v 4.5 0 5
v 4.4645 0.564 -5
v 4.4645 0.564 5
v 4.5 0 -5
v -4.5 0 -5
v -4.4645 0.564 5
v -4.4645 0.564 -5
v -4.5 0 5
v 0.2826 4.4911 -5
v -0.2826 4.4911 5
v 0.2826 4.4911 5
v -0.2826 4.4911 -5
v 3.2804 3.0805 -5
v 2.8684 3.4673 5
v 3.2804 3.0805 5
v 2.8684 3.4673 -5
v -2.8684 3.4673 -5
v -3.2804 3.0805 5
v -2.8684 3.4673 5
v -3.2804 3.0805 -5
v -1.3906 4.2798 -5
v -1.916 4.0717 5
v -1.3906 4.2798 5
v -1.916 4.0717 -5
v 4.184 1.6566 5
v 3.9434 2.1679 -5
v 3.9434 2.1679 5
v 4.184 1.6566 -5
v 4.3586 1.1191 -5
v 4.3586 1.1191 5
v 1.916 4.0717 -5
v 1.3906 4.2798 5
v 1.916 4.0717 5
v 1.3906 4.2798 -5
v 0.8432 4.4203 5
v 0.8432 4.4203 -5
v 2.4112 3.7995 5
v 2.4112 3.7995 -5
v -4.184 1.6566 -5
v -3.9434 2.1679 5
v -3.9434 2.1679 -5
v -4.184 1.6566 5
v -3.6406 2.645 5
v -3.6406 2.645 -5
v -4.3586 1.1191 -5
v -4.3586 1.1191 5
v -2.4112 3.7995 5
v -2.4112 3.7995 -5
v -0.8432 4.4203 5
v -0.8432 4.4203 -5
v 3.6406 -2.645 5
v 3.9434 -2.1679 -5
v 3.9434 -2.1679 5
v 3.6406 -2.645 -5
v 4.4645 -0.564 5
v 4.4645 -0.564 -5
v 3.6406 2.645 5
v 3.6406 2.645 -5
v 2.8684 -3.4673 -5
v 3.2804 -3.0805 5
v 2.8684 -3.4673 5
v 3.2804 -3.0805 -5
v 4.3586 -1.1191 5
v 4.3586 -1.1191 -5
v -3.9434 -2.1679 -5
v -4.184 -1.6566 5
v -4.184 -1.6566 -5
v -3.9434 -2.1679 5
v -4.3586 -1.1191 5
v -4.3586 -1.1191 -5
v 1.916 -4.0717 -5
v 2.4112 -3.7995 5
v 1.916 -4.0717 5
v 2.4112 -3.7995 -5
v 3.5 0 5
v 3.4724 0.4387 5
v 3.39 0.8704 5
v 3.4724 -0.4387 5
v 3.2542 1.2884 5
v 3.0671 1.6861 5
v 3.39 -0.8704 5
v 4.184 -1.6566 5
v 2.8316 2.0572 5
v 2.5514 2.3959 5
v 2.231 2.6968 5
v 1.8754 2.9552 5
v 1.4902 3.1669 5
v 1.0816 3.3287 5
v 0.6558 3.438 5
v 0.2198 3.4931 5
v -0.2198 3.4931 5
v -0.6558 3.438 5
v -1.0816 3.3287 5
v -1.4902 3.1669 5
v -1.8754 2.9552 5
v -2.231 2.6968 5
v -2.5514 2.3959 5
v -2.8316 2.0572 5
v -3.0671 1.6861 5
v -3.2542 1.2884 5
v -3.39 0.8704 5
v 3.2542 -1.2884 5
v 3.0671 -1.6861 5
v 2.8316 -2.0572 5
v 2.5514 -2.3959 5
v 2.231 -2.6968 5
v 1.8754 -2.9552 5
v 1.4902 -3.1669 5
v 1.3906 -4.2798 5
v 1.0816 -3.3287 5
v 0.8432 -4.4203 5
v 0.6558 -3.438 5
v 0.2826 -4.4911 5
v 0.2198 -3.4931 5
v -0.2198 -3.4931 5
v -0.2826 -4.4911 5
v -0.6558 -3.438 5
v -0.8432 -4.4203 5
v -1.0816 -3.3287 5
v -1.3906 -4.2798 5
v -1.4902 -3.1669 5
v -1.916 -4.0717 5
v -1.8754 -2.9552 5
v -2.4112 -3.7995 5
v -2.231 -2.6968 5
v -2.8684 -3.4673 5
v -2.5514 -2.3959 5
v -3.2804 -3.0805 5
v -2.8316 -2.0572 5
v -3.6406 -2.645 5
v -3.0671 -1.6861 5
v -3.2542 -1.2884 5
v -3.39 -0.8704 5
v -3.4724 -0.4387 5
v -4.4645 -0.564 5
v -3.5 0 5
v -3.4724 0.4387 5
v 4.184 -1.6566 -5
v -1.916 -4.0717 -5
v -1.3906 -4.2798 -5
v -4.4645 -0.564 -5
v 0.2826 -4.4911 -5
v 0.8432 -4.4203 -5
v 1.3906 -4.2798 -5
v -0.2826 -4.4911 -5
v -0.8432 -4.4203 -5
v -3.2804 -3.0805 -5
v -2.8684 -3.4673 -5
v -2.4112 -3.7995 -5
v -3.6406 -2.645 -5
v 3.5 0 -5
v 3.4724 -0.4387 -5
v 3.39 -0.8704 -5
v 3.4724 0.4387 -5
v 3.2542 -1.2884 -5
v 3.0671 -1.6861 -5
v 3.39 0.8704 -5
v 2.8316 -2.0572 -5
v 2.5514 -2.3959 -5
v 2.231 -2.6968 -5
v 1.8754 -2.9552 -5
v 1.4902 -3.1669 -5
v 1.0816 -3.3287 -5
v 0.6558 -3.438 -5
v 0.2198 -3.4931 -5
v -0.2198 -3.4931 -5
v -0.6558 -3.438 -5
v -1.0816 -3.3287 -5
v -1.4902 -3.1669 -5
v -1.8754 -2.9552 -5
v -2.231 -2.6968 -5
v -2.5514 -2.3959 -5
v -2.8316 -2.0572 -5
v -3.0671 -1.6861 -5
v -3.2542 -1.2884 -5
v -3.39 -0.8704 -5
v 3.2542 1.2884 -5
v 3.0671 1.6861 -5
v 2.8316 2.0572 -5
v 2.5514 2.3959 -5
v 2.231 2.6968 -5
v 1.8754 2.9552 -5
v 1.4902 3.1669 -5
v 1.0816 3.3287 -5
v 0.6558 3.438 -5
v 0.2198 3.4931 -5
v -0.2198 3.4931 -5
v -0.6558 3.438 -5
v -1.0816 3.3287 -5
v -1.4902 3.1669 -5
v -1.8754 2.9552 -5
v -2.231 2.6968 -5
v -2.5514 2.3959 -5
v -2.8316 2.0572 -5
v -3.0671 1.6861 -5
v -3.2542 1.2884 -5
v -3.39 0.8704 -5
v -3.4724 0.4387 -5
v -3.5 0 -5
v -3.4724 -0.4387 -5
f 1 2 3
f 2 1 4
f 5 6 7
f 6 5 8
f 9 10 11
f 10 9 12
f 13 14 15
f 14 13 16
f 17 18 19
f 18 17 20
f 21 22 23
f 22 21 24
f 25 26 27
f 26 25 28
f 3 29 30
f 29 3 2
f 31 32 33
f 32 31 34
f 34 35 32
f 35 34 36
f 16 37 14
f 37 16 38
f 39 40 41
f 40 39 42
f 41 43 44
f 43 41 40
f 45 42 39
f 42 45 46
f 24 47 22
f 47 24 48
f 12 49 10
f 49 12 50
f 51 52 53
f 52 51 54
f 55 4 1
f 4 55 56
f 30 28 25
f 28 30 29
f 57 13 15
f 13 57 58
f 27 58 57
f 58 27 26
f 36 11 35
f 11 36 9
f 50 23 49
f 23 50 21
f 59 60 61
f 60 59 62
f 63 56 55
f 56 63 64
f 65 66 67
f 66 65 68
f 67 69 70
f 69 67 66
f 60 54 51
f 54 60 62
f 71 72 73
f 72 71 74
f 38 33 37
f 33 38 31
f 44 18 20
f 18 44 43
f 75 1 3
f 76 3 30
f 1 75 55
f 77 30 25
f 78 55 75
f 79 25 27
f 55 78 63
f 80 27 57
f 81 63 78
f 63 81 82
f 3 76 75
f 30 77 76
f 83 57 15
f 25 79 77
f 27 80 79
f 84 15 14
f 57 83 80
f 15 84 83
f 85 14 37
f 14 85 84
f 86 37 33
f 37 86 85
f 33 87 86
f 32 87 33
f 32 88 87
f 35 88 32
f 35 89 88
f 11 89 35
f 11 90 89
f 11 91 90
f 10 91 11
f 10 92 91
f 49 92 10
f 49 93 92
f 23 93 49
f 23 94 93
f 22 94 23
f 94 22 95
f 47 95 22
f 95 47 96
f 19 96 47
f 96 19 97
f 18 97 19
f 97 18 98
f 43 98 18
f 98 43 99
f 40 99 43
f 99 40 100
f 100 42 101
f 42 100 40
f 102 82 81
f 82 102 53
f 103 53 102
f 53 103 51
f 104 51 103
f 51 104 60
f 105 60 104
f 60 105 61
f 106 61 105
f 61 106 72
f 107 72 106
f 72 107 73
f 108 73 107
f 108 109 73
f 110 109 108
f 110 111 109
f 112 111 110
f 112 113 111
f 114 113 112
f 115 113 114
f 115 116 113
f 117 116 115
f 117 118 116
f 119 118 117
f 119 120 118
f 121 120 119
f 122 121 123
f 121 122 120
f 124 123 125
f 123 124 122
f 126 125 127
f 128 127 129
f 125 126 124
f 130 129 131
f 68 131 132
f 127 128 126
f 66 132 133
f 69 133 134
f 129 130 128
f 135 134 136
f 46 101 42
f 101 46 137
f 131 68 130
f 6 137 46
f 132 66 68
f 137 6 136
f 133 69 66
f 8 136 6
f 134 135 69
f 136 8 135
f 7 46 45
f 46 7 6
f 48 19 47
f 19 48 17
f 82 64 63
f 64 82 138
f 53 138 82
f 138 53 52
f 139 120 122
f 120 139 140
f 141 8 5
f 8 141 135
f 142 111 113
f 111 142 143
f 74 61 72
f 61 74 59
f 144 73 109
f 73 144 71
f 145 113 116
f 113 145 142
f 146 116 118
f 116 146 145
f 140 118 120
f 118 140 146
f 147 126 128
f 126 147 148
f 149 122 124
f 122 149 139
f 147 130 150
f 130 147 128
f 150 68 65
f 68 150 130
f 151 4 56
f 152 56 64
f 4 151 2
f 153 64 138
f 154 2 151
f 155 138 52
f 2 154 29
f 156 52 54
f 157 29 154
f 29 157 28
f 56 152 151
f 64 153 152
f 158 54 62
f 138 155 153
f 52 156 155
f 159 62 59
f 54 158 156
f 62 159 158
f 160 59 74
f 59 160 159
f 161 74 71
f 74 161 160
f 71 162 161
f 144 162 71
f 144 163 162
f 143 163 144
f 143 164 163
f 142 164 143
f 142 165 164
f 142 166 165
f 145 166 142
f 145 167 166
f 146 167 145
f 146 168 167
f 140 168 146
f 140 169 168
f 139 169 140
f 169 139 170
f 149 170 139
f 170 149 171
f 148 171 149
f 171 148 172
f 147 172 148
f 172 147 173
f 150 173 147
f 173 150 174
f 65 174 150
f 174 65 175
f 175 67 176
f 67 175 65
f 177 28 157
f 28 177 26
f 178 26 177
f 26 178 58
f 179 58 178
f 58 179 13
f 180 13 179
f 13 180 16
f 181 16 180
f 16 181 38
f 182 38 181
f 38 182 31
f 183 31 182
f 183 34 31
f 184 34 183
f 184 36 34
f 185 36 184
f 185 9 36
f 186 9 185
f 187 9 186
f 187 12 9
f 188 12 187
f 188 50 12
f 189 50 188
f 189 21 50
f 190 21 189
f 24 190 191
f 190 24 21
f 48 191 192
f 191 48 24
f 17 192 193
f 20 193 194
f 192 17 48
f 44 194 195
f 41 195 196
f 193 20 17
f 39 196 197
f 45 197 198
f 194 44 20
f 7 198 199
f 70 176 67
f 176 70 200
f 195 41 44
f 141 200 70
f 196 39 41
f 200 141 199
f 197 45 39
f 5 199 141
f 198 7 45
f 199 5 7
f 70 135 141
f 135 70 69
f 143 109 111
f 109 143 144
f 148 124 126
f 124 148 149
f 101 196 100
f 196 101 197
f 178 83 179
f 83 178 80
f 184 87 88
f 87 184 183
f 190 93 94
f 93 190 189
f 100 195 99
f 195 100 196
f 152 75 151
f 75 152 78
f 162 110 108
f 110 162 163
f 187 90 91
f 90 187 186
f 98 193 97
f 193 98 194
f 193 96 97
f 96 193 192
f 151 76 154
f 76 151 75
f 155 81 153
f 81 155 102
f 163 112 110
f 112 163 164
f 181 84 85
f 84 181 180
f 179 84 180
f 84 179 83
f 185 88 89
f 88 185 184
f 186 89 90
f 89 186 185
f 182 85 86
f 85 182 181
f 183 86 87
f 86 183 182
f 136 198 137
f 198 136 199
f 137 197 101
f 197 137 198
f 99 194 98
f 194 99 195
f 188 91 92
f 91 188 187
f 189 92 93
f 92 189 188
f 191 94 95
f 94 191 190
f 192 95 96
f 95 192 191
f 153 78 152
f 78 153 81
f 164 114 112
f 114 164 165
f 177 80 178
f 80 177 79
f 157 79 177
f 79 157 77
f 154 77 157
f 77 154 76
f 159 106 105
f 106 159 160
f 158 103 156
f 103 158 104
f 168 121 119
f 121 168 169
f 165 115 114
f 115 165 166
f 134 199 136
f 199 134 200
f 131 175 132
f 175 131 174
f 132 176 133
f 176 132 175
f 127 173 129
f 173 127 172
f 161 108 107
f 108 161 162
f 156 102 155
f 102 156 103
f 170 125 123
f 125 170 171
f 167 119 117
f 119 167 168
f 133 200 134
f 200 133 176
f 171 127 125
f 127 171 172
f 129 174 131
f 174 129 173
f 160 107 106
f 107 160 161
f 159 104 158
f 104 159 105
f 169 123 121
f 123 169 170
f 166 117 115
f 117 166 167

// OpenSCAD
$fn = 50;


difference() {
	union() {
		translate(v = [0, 0, -5.0000000000]) {
			cylinder(h = 10, r = 4.5000000000);
		}
	}
	union() {
		translate(v = [0, 0, -100.0000000000]) {
			cylinder(h = 200, r = 3.5000000000);
		}
	}
}
